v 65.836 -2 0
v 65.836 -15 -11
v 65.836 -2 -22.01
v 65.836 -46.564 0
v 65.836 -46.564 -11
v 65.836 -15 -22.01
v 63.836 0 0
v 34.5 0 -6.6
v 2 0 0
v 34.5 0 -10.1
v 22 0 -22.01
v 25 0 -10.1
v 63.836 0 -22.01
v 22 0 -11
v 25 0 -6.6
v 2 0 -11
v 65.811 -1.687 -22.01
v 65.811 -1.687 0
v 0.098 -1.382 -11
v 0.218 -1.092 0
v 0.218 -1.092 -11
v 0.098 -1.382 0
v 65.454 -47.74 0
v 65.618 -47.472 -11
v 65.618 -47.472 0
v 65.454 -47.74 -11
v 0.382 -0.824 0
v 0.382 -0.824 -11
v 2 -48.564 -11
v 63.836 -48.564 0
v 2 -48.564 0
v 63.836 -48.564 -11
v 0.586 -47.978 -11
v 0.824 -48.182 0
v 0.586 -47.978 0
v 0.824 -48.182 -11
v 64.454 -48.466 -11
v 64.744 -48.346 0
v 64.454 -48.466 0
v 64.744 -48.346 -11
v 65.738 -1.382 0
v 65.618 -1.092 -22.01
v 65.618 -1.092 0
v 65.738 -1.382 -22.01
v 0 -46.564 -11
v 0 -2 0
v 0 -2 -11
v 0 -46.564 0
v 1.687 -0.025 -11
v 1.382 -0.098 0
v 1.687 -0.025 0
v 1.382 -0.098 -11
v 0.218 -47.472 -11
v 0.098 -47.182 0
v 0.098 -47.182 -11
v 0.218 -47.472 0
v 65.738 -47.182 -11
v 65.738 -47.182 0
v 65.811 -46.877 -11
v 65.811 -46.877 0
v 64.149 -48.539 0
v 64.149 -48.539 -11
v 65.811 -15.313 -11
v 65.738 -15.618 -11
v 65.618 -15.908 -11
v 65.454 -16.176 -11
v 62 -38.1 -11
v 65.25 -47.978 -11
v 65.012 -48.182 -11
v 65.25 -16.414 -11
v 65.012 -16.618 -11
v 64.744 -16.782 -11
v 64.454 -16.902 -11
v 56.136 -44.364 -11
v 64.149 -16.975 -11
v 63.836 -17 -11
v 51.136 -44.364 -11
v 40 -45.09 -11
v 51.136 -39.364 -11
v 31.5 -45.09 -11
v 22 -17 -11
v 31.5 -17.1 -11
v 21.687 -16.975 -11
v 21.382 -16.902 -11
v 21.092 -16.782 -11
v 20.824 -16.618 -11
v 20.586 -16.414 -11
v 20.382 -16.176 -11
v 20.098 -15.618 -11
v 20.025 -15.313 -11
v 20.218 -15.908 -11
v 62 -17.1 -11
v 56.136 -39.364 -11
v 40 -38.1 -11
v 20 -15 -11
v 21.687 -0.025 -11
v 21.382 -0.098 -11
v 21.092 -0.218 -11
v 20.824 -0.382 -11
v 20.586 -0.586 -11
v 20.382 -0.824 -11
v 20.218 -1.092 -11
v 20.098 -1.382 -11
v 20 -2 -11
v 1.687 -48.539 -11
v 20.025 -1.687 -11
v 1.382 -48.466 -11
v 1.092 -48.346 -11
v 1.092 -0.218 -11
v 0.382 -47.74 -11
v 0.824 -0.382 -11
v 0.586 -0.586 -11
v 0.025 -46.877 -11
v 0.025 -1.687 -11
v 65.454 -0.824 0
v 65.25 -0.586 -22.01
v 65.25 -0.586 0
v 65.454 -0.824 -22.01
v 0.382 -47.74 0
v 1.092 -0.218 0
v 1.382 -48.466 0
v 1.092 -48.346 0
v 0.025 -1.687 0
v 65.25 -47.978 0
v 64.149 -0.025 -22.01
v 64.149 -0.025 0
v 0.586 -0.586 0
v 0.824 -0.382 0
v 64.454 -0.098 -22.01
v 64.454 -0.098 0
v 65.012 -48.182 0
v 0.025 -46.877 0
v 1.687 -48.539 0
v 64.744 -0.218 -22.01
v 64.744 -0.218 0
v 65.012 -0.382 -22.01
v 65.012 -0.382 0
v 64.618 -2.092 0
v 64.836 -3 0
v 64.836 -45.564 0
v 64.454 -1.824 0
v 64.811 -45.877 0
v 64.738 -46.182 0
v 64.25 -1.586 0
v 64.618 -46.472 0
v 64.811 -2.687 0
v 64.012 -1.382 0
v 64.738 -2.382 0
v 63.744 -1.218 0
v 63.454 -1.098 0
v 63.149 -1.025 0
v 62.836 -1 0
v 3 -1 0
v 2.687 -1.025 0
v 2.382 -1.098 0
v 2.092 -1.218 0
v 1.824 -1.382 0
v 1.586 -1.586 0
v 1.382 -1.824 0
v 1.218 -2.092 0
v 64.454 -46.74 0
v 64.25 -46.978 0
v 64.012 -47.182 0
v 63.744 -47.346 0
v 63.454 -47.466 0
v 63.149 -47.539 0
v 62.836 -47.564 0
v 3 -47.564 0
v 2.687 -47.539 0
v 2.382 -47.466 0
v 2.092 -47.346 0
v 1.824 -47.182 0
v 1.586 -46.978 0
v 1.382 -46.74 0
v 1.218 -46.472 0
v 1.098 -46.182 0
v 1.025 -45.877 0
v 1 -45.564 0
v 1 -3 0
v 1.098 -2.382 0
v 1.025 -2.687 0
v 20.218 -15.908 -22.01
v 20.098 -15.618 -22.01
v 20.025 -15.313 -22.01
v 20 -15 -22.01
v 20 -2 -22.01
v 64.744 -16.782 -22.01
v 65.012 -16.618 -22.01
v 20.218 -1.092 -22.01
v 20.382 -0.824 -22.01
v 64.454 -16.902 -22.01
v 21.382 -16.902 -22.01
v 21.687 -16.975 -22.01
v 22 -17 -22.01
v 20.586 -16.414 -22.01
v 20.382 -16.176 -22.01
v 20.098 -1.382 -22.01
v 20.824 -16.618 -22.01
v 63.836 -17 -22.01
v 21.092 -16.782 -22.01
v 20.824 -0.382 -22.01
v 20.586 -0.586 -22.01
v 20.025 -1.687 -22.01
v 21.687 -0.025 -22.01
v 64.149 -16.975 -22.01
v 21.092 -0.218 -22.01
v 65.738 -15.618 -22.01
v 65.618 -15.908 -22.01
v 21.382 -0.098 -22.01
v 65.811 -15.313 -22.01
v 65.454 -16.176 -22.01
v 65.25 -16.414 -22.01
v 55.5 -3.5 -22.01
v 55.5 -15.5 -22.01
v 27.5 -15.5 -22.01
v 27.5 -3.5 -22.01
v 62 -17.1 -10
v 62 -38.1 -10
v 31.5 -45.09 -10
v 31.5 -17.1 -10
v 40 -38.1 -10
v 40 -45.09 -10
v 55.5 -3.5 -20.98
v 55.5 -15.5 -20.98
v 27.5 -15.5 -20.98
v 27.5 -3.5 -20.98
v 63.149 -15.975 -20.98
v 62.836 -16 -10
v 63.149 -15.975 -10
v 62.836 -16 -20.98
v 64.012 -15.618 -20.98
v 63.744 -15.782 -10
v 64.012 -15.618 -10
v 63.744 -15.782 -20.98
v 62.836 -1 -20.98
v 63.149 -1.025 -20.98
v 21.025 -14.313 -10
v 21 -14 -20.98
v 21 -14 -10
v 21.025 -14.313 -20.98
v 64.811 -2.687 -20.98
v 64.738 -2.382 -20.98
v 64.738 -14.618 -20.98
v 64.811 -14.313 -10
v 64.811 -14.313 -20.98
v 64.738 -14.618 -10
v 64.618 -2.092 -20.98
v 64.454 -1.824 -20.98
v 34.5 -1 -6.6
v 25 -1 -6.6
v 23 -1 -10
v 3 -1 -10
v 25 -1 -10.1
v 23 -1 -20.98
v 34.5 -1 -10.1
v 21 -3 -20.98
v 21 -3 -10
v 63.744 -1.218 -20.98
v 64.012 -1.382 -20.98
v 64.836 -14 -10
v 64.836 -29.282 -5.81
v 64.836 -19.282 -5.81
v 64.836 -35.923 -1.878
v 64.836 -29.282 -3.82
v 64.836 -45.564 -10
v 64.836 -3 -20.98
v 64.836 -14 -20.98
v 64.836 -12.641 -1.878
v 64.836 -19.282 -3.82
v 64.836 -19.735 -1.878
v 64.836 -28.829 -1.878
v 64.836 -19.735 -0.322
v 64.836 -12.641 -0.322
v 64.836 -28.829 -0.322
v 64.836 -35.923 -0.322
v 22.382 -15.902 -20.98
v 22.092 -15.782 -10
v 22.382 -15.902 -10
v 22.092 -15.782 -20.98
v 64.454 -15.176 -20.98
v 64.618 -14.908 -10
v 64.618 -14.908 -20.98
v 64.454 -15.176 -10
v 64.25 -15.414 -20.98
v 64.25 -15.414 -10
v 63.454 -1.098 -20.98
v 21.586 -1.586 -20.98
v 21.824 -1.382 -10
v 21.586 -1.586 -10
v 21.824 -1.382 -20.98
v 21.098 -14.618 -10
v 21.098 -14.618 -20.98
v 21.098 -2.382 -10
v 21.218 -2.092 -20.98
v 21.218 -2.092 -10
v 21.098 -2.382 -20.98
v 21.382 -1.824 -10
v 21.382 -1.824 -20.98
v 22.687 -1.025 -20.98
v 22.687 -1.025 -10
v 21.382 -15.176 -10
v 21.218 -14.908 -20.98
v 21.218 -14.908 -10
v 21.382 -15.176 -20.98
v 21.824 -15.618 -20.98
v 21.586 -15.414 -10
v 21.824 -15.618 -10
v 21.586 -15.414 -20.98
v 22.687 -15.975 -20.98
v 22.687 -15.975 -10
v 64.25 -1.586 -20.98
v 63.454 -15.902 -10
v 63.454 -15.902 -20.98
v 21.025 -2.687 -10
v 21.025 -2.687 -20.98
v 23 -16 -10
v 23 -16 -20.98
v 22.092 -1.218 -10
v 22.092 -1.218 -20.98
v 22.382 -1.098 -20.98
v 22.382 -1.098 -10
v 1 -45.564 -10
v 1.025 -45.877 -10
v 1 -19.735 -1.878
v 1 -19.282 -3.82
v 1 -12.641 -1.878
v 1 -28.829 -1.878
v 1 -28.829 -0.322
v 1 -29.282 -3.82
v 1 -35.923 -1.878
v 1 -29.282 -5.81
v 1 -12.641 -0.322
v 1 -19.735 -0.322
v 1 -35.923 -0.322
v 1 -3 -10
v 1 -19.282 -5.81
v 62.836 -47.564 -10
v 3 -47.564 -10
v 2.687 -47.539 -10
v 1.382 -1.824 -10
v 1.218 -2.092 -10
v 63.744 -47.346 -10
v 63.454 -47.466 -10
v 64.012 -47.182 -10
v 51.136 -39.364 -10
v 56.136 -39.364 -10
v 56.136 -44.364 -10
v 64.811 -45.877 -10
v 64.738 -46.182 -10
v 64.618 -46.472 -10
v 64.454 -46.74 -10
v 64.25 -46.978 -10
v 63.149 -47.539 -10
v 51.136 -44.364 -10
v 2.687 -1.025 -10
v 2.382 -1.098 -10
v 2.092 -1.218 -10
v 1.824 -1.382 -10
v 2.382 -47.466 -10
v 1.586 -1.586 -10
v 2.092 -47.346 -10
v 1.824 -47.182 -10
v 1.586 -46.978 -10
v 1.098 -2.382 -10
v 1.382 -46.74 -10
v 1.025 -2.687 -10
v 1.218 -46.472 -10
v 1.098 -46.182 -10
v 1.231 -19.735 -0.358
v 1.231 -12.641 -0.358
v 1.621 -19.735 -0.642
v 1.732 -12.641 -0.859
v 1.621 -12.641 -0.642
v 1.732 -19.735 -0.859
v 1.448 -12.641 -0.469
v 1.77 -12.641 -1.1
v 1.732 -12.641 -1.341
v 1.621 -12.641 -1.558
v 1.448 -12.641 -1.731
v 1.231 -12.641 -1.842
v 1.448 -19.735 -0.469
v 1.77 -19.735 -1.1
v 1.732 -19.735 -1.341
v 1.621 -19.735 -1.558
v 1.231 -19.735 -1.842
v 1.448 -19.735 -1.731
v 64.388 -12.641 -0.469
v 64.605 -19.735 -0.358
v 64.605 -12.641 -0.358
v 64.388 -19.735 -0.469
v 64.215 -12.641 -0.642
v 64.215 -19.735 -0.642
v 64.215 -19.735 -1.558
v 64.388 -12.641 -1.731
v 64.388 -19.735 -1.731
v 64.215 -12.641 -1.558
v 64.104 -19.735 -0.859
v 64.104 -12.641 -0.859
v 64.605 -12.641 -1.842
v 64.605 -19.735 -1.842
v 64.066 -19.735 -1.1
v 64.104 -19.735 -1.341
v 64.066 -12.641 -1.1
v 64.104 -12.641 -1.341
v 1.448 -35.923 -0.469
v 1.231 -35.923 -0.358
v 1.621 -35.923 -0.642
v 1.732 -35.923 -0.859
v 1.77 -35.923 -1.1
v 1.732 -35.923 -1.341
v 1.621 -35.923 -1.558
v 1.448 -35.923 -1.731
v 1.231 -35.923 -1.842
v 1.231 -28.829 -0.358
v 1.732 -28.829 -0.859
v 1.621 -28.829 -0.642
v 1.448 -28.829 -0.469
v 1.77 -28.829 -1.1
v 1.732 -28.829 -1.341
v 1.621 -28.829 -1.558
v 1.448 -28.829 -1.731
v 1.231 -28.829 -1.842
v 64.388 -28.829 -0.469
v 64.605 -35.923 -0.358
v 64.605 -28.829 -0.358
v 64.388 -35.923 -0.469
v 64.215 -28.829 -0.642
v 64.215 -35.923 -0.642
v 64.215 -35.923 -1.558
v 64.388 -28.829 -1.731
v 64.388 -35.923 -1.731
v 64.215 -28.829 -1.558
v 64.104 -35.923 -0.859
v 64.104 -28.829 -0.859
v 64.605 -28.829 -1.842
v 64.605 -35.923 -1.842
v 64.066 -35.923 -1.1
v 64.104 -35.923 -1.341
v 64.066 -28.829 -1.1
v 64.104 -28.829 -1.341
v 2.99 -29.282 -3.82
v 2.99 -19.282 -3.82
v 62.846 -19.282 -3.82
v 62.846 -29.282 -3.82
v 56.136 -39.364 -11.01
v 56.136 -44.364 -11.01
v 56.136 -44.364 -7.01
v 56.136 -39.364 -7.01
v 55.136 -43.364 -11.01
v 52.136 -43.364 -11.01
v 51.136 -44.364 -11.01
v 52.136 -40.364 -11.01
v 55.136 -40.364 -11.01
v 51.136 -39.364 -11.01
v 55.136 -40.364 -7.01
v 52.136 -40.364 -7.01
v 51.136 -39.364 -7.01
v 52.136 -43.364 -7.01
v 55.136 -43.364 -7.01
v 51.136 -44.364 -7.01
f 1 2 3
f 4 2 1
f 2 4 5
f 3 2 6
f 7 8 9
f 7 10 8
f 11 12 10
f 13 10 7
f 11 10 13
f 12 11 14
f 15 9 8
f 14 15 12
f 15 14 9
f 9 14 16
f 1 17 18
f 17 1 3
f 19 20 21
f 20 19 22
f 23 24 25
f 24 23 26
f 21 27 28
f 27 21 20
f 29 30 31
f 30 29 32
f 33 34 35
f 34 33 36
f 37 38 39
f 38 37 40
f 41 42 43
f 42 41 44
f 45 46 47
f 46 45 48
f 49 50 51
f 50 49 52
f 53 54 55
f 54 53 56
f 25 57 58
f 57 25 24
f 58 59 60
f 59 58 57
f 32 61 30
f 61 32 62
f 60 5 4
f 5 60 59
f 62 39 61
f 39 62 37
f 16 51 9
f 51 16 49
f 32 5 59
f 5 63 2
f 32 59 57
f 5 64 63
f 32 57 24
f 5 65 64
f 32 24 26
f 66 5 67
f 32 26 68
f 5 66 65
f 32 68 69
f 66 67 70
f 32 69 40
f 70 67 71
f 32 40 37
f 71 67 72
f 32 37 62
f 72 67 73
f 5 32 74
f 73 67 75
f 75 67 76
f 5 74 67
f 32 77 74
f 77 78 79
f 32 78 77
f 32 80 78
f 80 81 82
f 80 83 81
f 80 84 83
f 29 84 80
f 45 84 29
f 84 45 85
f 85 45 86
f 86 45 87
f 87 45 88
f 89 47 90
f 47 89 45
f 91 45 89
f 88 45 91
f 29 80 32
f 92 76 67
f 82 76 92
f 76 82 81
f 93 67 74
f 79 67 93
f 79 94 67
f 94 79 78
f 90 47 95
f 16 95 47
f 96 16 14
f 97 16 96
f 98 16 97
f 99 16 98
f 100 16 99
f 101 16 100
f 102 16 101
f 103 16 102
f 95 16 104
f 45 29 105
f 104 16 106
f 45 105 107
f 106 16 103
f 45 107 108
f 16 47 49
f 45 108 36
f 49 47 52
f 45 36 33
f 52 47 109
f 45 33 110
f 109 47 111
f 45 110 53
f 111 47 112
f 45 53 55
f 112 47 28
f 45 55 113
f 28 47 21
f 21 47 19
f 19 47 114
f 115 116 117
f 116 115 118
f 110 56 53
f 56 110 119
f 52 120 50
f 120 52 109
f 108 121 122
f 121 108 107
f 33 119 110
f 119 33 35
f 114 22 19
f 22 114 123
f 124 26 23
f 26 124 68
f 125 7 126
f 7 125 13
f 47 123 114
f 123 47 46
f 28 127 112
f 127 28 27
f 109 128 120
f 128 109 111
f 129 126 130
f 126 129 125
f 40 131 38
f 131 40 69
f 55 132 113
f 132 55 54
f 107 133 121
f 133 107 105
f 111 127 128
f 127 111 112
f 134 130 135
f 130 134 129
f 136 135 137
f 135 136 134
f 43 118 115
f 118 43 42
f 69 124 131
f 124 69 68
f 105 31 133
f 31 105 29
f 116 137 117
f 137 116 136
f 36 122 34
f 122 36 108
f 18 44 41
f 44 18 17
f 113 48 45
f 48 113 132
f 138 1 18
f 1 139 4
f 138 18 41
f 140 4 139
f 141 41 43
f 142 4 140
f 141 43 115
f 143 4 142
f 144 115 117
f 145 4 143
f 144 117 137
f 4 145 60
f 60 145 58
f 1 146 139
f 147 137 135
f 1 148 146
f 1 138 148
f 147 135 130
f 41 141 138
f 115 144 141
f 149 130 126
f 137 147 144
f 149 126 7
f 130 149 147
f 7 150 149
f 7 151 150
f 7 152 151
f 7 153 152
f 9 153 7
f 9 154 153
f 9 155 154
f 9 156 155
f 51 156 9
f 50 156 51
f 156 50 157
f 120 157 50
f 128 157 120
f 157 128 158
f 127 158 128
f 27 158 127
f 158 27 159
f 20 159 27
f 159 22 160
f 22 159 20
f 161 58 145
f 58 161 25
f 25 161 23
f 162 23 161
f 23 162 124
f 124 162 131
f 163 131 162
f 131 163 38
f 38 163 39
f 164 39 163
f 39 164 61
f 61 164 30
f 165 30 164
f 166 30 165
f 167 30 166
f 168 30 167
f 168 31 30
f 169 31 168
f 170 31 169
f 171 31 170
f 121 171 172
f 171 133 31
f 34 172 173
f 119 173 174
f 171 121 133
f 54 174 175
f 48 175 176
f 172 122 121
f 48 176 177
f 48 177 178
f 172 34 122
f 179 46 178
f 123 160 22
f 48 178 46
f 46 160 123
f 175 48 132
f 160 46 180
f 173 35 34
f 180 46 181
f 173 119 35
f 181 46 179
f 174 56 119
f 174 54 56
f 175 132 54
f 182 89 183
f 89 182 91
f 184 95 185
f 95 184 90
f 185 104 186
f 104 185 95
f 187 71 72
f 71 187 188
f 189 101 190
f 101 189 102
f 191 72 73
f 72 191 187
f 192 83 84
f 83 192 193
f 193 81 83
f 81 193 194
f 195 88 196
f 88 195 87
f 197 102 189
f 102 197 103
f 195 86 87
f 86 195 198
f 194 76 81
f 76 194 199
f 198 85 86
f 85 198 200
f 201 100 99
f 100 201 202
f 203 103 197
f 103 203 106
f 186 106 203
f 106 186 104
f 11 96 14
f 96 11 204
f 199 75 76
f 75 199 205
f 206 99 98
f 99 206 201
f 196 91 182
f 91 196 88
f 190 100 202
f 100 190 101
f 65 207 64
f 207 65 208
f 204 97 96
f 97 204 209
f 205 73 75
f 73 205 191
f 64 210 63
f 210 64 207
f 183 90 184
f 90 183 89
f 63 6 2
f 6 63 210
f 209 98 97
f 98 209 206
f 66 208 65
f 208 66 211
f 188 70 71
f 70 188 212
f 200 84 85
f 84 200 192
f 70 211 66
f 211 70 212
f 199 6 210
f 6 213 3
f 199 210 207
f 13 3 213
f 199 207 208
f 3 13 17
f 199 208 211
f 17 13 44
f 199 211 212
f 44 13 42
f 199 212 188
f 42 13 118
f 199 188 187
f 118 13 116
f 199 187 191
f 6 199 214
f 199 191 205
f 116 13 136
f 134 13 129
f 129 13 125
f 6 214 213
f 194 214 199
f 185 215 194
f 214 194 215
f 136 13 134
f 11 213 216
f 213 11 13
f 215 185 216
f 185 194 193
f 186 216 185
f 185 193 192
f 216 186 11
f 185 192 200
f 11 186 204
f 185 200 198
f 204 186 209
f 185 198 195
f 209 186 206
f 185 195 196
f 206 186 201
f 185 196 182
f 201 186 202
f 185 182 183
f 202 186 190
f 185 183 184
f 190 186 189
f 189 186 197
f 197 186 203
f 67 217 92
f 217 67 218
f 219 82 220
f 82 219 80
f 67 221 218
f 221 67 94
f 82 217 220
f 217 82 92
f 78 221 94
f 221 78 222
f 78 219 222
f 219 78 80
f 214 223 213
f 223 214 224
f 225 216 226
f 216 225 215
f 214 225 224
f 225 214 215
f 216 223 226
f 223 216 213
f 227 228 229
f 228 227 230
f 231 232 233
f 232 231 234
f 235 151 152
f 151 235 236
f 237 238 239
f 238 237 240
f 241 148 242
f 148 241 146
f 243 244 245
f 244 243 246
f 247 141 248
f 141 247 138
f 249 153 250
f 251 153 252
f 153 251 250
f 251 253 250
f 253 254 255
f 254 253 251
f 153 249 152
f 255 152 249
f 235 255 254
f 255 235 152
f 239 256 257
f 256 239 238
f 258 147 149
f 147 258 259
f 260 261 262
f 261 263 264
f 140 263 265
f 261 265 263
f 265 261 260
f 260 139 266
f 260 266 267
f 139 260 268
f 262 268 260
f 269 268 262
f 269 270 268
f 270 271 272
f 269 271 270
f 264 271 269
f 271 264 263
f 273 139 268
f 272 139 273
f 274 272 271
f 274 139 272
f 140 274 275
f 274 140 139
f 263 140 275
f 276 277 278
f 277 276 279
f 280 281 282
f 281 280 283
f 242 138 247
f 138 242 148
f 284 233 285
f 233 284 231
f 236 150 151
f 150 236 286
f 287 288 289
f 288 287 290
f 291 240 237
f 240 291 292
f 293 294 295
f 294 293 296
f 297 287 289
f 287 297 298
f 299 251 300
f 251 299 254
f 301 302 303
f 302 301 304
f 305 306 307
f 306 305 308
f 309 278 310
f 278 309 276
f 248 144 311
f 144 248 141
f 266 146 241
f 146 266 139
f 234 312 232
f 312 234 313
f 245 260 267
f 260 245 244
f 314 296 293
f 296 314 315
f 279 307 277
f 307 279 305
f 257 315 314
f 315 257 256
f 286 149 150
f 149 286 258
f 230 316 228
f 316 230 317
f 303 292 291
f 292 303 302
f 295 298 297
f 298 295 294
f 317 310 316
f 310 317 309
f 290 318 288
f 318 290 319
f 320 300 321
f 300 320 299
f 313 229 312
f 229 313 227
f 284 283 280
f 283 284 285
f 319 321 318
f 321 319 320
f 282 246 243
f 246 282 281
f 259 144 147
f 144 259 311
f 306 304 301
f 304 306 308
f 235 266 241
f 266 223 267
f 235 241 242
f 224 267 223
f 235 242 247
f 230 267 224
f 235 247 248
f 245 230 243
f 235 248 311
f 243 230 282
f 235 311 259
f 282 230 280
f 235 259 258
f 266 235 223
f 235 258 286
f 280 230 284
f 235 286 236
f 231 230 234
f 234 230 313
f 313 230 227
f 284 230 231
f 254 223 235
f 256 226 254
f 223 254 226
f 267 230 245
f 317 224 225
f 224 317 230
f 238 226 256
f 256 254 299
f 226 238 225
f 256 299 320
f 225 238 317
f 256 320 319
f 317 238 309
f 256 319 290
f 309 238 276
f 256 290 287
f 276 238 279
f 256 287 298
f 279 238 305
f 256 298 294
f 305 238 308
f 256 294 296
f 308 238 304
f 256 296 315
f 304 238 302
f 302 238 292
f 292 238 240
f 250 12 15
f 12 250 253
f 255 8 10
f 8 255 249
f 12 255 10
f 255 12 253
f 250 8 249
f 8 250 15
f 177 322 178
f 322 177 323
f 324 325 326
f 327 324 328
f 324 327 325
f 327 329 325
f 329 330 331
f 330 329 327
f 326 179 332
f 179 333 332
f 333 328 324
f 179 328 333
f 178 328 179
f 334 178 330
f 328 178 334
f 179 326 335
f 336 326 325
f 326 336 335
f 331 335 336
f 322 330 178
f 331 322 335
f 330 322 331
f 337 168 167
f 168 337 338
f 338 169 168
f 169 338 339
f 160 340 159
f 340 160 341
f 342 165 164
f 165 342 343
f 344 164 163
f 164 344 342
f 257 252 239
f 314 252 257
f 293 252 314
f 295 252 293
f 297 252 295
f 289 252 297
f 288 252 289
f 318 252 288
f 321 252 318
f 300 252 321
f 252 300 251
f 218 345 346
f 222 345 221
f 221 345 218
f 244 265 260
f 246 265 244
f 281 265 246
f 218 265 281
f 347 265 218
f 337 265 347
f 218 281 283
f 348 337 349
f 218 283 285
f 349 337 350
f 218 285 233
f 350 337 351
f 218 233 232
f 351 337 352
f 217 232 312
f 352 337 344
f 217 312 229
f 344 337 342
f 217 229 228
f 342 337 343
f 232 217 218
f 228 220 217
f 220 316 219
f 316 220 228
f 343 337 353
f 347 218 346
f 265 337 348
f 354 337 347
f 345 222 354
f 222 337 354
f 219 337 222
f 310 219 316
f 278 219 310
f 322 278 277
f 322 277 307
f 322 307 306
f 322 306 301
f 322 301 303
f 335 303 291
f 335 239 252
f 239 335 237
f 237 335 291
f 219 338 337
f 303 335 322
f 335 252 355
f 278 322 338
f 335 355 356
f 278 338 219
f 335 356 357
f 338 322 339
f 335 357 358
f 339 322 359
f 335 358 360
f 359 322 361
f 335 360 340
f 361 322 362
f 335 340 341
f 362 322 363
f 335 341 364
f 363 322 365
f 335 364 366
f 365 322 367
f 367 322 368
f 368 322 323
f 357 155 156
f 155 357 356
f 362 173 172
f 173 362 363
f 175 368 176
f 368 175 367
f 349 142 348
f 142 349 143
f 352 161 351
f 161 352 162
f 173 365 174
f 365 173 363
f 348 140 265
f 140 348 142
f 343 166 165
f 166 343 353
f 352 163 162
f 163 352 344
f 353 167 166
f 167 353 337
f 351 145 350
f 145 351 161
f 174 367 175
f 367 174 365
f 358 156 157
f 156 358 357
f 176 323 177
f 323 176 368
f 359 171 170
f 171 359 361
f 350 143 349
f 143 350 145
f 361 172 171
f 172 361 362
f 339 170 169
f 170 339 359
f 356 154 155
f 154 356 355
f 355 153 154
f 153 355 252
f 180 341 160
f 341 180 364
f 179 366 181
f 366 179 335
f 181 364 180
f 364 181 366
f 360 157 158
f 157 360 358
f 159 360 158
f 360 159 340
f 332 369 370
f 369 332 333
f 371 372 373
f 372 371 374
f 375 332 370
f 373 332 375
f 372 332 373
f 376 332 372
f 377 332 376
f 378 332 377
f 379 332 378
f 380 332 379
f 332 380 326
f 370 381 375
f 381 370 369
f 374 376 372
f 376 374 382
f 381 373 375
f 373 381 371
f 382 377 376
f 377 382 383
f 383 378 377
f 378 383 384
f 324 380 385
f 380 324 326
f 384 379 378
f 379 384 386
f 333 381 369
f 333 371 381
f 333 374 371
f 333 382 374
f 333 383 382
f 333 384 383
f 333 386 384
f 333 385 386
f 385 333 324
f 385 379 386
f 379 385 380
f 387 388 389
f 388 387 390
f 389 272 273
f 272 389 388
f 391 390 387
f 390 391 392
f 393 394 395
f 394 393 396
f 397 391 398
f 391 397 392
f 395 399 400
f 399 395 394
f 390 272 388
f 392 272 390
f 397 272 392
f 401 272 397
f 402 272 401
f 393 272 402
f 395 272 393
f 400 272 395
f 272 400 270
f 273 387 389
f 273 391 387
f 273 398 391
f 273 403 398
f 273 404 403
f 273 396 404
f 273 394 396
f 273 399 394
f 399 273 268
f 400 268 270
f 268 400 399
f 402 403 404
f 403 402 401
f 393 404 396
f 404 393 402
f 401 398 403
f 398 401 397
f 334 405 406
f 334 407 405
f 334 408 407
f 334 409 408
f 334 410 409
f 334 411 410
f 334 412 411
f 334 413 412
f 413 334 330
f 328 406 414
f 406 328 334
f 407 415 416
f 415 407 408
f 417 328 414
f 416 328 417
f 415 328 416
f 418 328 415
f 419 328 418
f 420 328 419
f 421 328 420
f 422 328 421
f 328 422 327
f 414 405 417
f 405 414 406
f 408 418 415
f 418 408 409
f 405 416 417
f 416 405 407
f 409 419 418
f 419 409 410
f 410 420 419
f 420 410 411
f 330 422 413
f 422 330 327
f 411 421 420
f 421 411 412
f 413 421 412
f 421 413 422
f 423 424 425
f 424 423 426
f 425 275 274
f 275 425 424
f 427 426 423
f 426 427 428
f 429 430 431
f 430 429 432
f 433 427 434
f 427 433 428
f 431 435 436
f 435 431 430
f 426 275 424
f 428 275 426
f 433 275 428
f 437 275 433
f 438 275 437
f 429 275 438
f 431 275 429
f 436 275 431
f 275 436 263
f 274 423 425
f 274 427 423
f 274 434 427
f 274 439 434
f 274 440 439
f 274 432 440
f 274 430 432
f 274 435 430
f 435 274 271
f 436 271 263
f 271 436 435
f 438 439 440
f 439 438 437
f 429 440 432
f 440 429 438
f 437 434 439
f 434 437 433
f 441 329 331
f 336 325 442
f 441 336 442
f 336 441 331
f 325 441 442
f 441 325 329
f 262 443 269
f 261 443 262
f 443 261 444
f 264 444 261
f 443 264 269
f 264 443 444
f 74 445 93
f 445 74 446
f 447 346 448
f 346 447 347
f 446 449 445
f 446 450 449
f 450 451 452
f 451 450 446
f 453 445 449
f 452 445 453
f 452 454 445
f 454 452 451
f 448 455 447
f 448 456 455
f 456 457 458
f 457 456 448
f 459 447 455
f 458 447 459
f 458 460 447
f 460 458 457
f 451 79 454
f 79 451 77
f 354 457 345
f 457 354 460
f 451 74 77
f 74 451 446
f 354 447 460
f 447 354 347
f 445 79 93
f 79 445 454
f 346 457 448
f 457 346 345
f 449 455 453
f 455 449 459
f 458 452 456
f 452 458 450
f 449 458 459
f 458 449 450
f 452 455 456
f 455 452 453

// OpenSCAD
// file: ProjectBox/util.scad
// Copyright (c) 2024 Chris Lee and contibuters.
// Licensed under the MIT license. See LICENSE file in the project root for details.

include <MCAD/units.scad>

ones = [1, 1, 1];

module RX(angle) {
  rotate(angle, X) children();
}
module RY(angle) {
  rotate(angle, Y) children();
}
module RZ(angle) {
  rotate(angle, Z) children();
}
module TX(dist) {
  translate(X*dist) children();
}
module TX(dist) {
  translate(X*dist) children();
}
module TY(dist) {
  translate(Y*dist) children();
}
module TZ(dist) {
  translate(Z*dist) children();
}

// x-extra and y-extra adjust the x/y offset at the far-x and far-y corners.
module at_corners(dims, corner_offset, to_draw=undef, x_extra=0.0, y_extra=0.0) {
  o = corner_offset;
  if (!to_draw || to_draw[0]) translate([o, o, 0]) children();
  if (!to_draw || to_draw[1]) translate([dims[0]-o+x_extra, o, 0]) rotate(90, Z) children();
  if (!to_draw || to_draw[2]) translate([dims[0]-o+x_extra, dims[1]-o+y_extra, 0])
				rotate(180, Z) children();
  if (!to_draw || to_draw[3]) translate([o, dims[1]-o+y_extra, 0]) rotate(270, Z) children();
}
// file: ProjectBox/screw_tab.scad
// Copyright (c) 2024 Chris Lee and contibuters.
// Licensed under the MIT license. See LICENSE file in the project root for details.

include <MCAD/units.scad>

// Screw tab is drawn in the y-direction (attached on -Y side).
module screw_tab(tab_width=10, thickness=2, screw_radius=2) {
  $fn=40;
  dz = thickness;
  sd = tab_width;
  sr = tab_width / 2;
  translate([-sr, -epsilon, 0]) difference() {
    union() {
      cube([sd, sr, dz]);
      translate([sr, sr, 0]) cylinder(dz, sr, sr);
    }
    translate([sr, sr, -epsilon]) cylinder(dz+1, screw_radius, screw_radius);
  }
}
// file: ProjectBox/rounded_box.scad
// Copyright (c) 2024 Chris Lee and contibuters.
// Licensed under the MIT license. See LICENSE file in the project root for details.

module rounded_box(dims, r) {
  x = dims[0];
  y = dims[1];
  z = dims[2];
  module cyl() {
    cylinder(z, r, r, $fn=40);
  }
  if (r == 0) {
    cube(r);
  } else {
    hull() {
      translate([r, r, 0]) cyl();
      translate([x-r, r, 0]) cyl();
      translate([x-r, y-r, 0]) cyl();
      translate([r, y-r, 0]) cyl();
    }
  }
}
// file: board.scad
include <ProjectBox/project_box.scad>

board_thickness = 1.6;
pad_space = 2.54;
board_dims = [23.4*pad_space, 16.6*pad_space, board_thickness];

module Plant1337_to_oled_frame() {
  u = pad_space;
  translate([u*23-0.5, 0.6, 13]) rotate([0, 0, 90]) children();
}

module oled() {
  s = inch * 0.1;
  pin_len = 4;
  color("silver") {
    for (i = [0: 3]) {
      translate([s*i+pad_space, pad_space/2, -pin_len]) cube([0.25, 0.25, pin_len]);
    }
  }
  color("gray") cube([12, 38, 1]);
  translate([0, 5.5, 1]) color("black") cube([12, 28, 1]);
}

module Plant1337_board() {
  u = pad_space;

  // Board imported from KiCad (VRML) -> meshlab
  translate([board_dims[0]/2, board_dims[1]/2, board_dims[2]/2]) color("white")
    import(file="Plant1337.stl", convexity=3);

  Plant1337_to_oled_frame() oled();
}
// file: ProjectBox/shtc3_window.scad
// Copyright (c) 2024 Chris Lee and contibuters.
// Licensed under the MIT license. See LICENSE file in the project root for details.

module shtc3_window(offset, space_above_board, wall, negative, z_gap = 0.0) {
  sz = [3, 3, 1];
  translate(offset) {
    if (negative) {
      translate([0, 0, z_gap-1]) {
	cube([sz[0], sz[1], space_above_board+wall+2-z_gap]);
      }
    } else {
      translate([-wall, -wall, z_gap+epsilon]) {
	cube([sz[0] + 2*wall, sz[1] + 2*wall, space_above_board-z_gap]);
      }
    }
  }
}
// file: ProjectBox/mounts.scad
// Copyright (c) 2024 Chris Lee and contibuters.
// Licensed under the MIT license. See LICENSE file in the project root for details.

module screw_mount(height, wall, screw_radius) {
  $fn = 20;
  difference() {
    cylinder(height, screw_radius+wall, screw_radius+wall);
    cylinder(height+epsilon, screw_radius, screw_radius);
  }
}
// file: ProjectBox/project_box.scad
// Copyright (c) 2024 Chris Lee and contibuters.
// Licensed under the MIT license. See LICENSE file in the project root for details.

include <MCAD/units.scad>
include <rounded_box.scad>
include <screw_tab.scad>
use <util.scad>

bump_d = 0.8;

module in_board_frame(outer_dims, board_dims, space_below_board) {
  translate([(outer_dims[0] - board_dims[0])/2,
	     (outer_dims[1] - board_dims[1])/2,
	     space_below_board])
    children();
}

default_tab_len = 10;
function tab_length(dim, num_tabs=2) = min(default_tab_len, dim/(2*(num_tabs+1)));
function tab_offset(i, dim, num_tabs=2) = (dim*(i+1)/(num_tabs+1))-0.5*tab_length(dim, num_tabs);

module project_box(outer_dims,
		   wall_thickness=1,
		   gap=0.1,
		   // If true put snaps for top/bottom on sides rather than front/back.
		   snaps_on_sides=false,
		   corner_radius=0.0,
		   top=true,
		   top_cutouts=undef,
		   ym_cutouts=undef,
		   screw_tab_d=0) {
  wall = wall_thickness;
  num_snaps = 2;

  // Length of side of box snap-tabs will be added.
  tabdim = snaps_on_sides ? outer_dims[1] : outer_dims[0];
  // Length of snap-tab holes (tabs shrinks slightly to fit).
  tablen = tab_length(tabdim, num_snaps);
  // Difference between tab length and tab hole length;
  tab_gap = 1;

  // Space between bottom of box and top of box.
  fit_gap = 0.02;

  // The bottom of the box fits inside the shell of the top.
  dims = top ? outer_dims : outer_dims - (2*wall+fit_gap) * [1, 1, 1];

  // Tabs for clicking base into start at wall-height, are 2*wall-height high.
  // Allow 2*wall_height above bump for hight of bottom part of box.
  tab_depth = min(bump_d, dims[2] - 3*wall);
  bottom_height = wall+tab_depth+2*wall;

  module bump() {
    dh = bump_d - fit_gap;
    rotate(90, Y) cylinder(tablen-tab_gap, dh, dh, $fn=20);
  }

  module hump_positives(humps, space_above_board, corner_radius, wall) {
    for (hump = humps) {
      offset = hump[0];
      outer_dims = hump[1];
      z_start = gap * 2 + wall + space_below_board + board_thickness + space_above_board + epsilon;
      translate([offset[0], offset[1], z_start]) rounded_box(outer_dims, corner_radius);
    }
  }
  module hump_negatives(humps, space_above_board, corner_radius, wall) {
    for (hump = humps) {
      offset = hump[0];
      outer_dims = hump[1];
      z_start = gap * 2 + wall + space_below_board + board_thickness + space_above_board - epsilon - epsilon;
      translate([offset[0]+wall, offset[1]+wall, z_start])
	rounded_box(outer_dims-[wall*2, wall*2, wall], corner_radius);
    }
  }
  module cutouts(cutout_list, remove_len) {
    for (cutout = cutout_list) {
      offset = cutout[0];
      dims = cutout[1];
      translate([offset[0], offset[1], 0]) cube([dims[0], dims[1], remove_len]);
    }
  }

  wedge_dx = 2*wall;
  wedge_dy = min(outer_dims[1]-2*wall-corner_radius, 10);
  wedge_dz = wedge_dx;
  module wedge() {
    // Bump to stop the bottom of box to go too up into the top.
    translate([0, 0, bottom_height+fit_gap]) {
      // Start with cube, switch to wedge for printing.
      translate(Y*wedge_dy) rotate(90, X)
	linear_extrude(wedge_dy) polygon([[0, 0], [0, wedge_dz], [wedge_dx, 0]]);
    }
  }

  // The bottom of the box fits inside the shell of the top.
  translate(top ? [0,0,0] : wall*[1, 1, 0]) union() {
    difference() {
      // shell
      difference() {
	union() {
	  rounded_box(dims, corner_radius);
	  if (top)
	    hump_positives(bumps, space_above_board, corner_radius, wall);
	}
	iz = top ? (dims[2] - 2*wall) : dims[2];  // inner-z
	translate(ones*wall) rounded_box([dims[0] - wall*2, dims[1]-wall*2, iz], corner_radius);
	if (top) {
	  hump_negatives(bumps, space_above_board, corner_radius, wall);
	  // cutouts from the top surface
	  if (top_cutouts)
	    cutouts(top_cutouts, remove_len=100);
	  // cutouts from the y=0 surface
	  if (ym_cutouts)
	    translate([0, 1+wall, 0]) rotate([90, 0, 0]) cutouts(ym_cutouts, remove_len=(wall+2));
	}
      }

      if (!top) {
	// Box bottom

	// Cut off top.
	translate([-1, -1, bottom_height]) { cube(dims + 2 * ones); }
	// Make a slot for top to click into
	bottom_offset = -wall;  // offset to account for bottom fitting inside top.
	if (snaps_on_sides) {
	  for (isnap = [0:num_snaps-1]) {
	    y = tab_offset(isnap, tabdim, num_snaps) + bottom_offset;
	    translate([-1, y, wall]) cube([dims[0]+2, tablen, wall+tab_depth]);
	  }
	} else {
	  for (isnap = [0:num_snaps-1]) {
	    x = tab_offset(isnap, tabdim, num_snaps) + bottom_offset;
	    translate([x, -1, wall]) cube([tablen, dims[1]+2, wall+tab_depth]);
	  }
	}
      }	else {
	// Box top

	// Cut out for bottom
	translate(wall*[1, 1, -1]) {
	  rounded_box([dims[0]-2*wall, dims[1]-2*wall, wall*3], corner_radius);
	}
      }
    }

    // Board supports
    if (top) {
      // Snaps: Make bumps to click into slot in bottom.
      if (snaps_on_sides) {
	for (isnap = [0:num_snaps-1]) {
	  y = tab_offset(isnap, tabdim, num_snaps) + tab_gap/2;
	  translate([wall-epsilon, y, wall+gap/2]) rotate(90, Z) bump();
	  translate([dims[0]+epsilon-wall, y, wall+gap/2]) rotate(90, Z) bump();
	}
	translate([wall-epsilon, (outer_dims[1]-wedge_dy)/2, 0]) wedge();
	translate([outer_dims[0]-wall+epsilon, (outer_dims[1]+wedge_dy)/2, 0])
	  rotate(180, Z) wedge();
      } else {
	for (isnap = [0:num_snaps-1]) {
	  x = tab_offset(isnap, tabdim, num_snaps) + tab_gap/2;
	  translate([x, wall-epsilon, wall+gap/2]) bump();
	  translate([x, dims[1]+epsilon-wall, wall+gap/2]) bump();
	}
	translate([(outer_dims[0]+wedge_dy)/2, wall-epsilon, 0]) rotate(90, Z) wedge();
	translate([(outer_dims[0]-wedge_dy)/2, outer_dims[1]-wall+epsilon, 0])
	  rotate(270, Z) wedge();
      }
    }
  }

  if (top && screw_tab_d > 0) {
    translate([outer_dims[0]/2, outer_dims[1], 0])
      screw_tab(tab_width=screw_tab_d, thickness=2*wall, screw_radius=2);
  }
}

module holder_tab(wall_thickness, thickness=2, out_r=4, in_r=2) {
  translate(Z*wall_thickness) linear_extrude(thickness) {
    $fn = 20;
    y = epsilon;
    difference() {
      hull() {
	translate([0, epsilon-out_r]) circle(out_r);
	polygon([[-out_r, epsilon], [out_r, epsilon],
		 [out_r, 2*epsilon], [out_r, 2*epsilon]]);
      }
      translate([0, -out_r]) circle(in_r);
    }
  }
}
// file: gui.scad
// :GUI:
show_vitamins = true;
// :GUI:
show_box = true;
// :GUI:
top = true;
// file: box.scad
include <ProjectBox/project_box.scad>
include <ProjectBox/mounts.scad>
include <ProjectBox/shtc3_window.scad>
include <board.scad>

ones = [1, 1, 1];

wall_thickness = 1;
gap = 0.2;
corner_radius = 2;
mount_offset = pad_space;

space_above_board = 2;
space_below_board = 5;
inner_dims = (board_dims
	      + Z*(space_above_board+space_below_board)
	      + 2*gap*ones);
outer_dims = (inner_dims
	      + 2*ones*wall_thickness
	      + [2, 2, 0] * corner_radius);

// OLED bump offset and dims
oled_o = [20, 0];
oled_d = [outer_dims[0] - oled_o[0], 17, 12];

// bumps is a list of [offset-xy, outer_dims]
bumps = [[oled_o, oled_d]];

// cutout for moisture & pump
conns_o = [31.5, 17.1];
conns_d = [30.5, 21];
// cutout for water-level sensor
wlconn_o = [conns_o[0], conns_o[1]+conns_d[1]-epsilon];
wlconn_d = [8.5, 7];
// cutout for oled screen
olsc_o = [oled_o[0] + 7.5, oled_o[1] + 3.5];
olsc_d = [28, 12];
// top_cutouts is a list of [offset-xy,  dims-xu]
top_cutouts = [[conns_o, conns_d], [wlconn_o, wlconn_d], [olsc_o, olsc_d]];

usb_cutout = [[25, wall_thickness+space_below_board+board_thickness-1], [9.5, 3.5]];
ym_cutouts = [usb_cutout];

module in_Plant1337_board_frame(board_height=false) {
  zoffset = wall_thickness + (board_height ? space_below_board + 2*gap + board_thickness : 0);
  in_board_frame(outer_dims, board_dims, zoffset) children();
}

module Plant1337_box(top) {
  wall = wall_thickness;
  shtc3_loc = [board_dims[0] - 10.5, board_dims[1]-5, 0];

  difference() {
    union() {
      project_box(outer_dims,
		  wall_thickness=wall_thickness,
		  gap=gap,
		  snaps_on_sides=true,
		  corner_radius=corner_radius,
		  top=top,
		  top_cutouts=top_cutouts,
		  ym_cutouts=ym_cutouts);
      if (top) {
	in_Plant1337_board_frame(board_height=true)
	  shtc3_window(shtc3_loc, space_above_board+wall, wall, false, z_gap=-1);
      } else {
	// Stuff to add on bottom.
	in_Plant1337_board_frame() {
	  at_corners(board_dims+1.0*X, mount_offset, x_extra=-1.2, y_extra=-0.2)
	    screw_mount(space_below_board, wall, 2.5/2);
	}
      }	
    }
    // Stuff to remove.
    if (top) {
      in_Plant1337_board_frame(board_height=true)
	shtc3_window(shtc3_loc, space_above_board, wall, true, z_gap=-1);
    }
  }
}
// main file
include <box.scad>
include <gui.scad>

top = true;

rotate(180, X) Plant1337_box(top);
